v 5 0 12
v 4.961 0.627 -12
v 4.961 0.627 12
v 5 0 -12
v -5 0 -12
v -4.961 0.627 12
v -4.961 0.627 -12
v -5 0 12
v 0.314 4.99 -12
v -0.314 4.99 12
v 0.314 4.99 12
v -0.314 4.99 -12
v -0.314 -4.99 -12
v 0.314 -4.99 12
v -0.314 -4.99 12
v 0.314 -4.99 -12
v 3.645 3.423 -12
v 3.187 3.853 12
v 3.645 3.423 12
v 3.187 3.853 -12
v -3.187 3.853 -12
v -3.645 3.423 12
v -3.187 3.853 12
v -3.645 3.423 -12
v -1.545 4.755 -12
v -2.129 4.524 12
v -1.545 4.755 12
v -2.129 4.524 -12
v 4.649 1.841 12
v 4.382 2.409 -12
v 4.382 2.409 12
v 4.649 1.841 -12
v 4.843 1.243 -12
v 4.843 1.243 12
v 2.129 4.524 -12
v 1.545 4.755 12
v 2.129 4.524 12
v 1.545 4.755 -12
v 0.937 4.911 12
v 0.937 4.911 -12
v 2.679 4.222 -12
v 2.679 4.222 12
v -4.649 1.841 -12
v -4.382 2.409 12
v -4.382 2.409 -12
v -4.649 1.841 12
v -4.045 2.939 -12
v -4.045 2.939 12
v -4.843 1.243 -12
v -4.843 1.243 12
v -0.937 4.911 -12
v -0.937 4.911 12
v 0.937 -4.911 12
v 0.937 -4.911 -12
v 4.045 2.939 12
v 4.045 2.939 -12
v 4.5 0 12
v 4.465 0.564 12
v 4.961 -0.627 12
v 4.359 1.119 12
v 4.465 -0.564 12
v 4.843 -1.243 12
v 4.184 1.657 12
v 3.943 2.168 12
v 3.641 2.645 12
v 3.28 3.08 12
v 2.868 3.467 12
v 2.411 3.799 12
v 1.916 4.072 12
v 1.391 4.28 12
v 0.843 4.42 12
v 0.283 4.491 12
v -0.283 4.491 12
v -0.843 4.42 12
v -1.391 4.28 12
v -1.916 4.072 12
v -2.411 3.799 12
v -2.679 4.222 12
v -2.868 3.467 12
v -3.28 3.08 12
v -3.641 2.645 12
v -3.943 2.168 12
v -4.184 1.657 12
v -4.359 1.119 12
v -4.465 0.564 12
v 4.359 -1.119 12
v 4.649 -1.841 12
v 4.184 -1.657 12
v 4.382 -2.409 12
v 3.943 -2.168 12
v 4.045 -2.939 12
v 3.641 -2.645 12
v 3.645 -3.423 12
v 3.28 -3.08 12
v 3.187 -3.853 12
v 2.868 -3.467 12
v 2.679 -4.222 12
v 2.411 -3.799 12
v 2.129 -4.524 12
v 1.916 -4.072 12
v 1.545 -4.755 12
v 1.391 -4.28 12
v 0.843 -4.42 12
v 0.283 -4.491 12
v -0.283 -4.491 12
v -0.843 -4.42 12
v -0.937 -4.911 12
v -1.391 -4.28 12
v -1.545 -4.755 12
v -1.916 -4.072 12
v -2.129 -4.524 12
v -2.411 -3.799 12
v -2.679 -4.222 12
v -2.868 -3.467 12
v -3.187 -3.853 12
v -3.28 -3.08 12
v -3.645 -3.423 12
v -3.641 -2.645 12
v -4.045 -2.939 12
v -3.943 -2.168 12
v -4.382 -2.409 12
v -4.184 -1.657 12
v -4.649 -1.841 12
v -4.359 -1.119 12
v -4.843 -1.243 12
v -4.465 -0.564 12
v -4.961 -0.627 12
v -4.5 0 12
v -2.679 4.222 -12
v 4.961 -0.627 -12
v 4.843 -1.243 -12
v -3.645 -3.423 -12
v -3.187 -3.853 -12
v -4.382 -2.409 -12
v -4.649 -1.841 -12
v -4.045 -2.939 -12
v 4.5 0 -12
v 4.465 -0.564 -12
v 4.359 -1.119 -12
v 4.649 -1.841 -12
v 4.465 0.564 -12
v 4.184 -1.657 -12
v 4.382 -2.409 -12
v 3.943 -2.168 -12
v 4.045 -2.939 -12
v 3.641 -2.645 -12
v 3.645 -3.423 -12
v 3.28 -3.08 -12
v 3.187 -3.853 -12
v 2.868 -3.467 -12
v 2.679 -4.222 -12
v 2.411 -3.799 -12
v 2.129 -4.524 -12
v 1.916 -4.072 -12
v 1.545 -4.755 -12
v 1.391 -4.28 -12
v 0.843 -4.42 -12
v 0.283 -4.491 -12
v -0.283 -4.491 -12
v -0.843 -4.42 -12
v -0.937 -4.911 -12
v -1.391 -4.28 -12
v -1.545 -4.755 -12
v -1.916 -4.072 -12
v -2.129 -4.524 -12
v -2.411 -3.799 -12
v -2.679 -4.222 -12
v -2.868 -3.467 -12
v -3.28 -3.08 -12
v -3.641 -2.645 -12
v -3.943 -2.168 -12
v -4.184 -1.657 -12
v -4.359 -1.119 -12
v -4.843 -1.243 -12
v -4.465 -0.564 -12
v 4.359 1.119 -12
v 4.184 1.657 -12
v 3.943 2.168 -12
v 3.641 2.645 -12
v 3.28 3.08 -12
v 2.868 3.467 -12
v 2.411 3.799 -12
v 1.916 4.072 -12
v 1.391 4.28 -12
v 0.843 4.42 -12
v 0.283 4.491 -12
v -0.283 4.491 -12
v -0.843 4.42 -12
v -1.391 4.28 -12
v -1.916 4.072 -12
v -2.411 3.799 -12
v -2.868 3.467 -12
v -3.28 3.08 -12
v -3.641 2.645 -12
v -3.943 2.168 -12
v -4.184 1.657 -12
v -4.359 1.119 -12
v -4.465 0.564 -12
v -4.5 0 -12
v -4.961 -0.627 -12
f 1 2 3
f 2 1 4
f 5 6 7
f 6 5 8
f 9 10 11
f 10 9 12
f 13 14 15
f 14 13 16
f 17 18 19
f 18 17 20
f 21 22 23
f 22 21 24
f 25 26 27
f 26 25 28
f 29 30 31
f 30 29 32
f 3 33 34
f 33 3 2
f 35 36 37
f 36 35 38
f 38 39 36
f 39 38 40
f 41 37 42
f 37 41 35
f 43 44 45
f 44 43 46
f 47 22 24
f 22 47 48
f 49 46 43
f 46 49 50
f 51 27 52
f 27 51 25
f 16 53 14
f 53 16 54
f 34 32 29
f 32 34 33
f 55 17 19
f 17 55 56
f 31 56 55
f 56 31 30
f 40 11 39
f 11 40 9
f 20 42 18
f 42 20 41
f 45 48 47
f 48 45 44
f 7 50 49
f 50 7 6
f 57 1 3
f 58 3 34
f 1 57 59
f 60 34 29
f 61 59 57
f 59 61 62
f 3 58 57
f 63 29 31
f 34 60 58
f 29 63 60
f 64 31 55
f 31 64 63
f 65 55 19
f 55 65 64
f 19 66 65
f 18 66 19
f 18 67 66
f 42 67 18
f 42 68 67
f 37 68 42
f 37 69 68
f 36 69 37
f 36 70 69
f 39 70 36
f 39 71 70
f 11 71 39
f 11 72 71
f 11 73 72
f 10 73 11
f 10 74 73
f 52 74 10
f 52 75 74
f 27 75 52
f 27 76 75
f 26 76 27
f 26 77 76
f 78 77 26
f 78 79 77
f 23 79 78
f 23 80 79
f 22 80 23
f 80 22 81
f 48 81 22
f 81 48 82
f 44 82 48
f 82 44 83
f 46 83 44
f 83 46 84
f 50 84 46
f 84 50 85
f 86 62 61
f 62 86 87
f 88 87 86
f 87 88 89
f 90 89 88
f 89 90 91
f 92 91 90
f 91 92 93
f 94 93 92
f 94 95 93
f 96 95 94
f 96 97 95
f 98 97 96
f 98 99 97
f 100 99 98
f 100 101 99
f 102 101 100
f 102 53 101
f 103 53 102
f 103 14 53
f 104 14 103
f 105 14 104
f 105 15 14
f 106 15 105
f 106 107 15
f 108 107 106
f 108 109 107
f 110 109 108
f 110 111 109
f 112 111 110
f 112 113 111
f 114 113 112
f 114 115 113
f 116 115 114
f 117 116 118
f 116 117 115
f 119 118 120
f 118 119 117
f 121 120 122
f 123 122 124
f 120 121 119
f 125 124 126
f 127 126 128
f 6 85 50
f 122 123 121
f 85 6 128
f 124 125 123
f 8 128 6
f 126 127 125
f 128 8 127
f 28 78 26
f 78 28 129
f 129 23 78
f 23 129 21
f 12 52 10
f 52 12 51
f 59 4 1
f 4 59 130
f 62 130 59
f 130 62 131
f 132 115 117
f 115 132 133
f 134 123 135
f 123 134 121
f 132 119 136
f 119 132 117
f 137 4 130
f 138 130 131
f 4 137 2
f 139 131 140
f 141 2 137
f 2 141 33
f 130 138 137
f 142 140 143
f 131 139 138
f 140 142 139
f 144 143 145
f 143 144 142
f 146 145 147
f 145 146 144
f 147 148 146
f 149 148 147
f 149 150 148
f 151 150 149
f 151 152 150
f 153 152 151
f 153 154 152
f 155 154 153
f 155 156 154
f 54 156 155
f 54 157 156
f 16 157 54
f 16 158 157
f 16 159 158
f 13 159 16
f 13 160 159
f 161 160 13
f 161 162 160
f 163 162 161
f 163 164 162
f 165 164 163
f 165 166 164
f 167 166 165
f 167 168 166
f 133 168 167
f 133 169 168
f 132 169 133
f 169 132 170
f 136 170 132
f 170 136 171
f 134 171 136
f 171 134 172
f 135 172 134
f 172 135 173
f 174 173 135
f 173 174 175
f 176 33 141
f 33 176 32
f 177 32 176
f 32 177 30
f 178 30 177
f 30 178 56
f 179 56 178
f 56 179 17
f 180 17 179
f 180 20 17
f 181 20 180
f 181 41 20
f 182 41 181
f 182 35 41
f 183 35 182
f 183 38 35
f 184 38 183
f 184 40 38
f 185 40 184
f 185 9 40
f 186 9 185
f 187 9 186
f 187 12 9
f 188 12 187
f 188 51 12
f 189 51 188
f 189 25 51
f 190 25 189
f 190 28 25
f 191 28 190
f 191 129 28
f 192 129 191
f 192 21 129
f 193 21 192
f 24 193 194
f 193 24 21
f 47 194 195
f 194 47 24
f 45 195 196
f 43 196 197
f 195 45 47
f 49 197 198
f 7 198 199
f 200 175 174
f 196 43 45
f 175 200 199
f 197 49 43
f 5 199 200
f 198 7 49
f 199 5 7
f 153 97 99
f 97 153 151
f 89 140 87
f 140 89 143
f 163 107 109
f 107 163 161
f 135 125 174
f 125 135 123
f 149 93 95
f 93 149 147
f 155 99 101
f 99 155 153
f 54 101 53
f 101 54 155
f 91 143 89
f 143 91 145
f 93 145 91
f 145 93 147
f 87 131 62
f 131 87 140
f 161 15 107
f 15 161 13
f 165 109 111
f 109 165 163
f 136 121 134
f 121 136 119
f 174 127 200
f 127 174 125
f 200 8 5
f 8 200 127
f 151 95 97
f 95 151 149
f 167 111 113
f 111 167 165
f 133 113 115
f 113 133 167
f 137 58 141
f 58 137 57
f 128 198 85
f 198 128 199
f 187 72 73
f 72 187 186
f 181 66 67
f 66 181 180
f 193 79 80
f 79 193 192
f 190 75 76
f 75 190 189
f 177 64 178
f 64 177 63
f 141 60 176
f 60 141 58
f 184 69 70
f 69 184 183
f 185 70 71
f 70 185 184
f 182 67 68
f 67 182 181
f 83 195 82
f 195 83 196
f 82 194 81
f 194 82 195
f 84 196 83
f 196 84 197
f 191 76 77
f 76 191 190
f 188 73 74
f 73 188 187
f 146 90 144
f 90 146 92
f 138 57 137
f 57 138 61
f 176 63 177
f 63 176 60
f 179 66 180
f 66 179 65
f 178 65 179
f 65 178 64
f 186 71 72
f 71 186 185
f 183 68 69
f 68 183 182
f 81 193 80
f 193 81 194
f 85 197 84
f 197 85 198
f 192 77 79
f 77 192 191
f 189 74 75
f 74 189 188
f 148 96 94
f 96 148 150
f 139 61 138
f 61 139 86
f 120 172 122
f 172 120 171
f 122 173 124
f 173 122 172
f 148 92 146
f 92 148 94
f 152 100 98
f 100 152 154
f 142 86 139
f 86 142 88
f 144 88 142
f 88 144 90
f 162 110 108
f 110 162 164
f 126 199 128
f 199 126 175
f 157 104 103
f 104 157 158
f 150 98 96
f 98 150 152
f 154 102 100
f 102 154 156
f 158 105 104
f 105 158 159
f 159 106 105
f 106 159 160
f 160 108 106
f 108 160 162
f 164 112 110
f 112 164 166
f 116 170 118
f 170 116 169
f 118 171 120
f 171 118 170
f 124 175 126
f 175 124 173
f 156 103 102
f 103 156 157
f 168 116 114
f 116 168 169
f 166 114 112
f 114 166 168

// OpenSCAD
$fn = 50;


difference() {
	union() {
		translate(v = [0, 0, -12.0000000000]) {
			cylinder(h = 24, r = 5.0000000000);
		}
	}
	union() {
		translate(v = [0, 0, -100.0000000000]) {
			cylinder(h = 200, r = 4.5000000000);
		}
	}
}
